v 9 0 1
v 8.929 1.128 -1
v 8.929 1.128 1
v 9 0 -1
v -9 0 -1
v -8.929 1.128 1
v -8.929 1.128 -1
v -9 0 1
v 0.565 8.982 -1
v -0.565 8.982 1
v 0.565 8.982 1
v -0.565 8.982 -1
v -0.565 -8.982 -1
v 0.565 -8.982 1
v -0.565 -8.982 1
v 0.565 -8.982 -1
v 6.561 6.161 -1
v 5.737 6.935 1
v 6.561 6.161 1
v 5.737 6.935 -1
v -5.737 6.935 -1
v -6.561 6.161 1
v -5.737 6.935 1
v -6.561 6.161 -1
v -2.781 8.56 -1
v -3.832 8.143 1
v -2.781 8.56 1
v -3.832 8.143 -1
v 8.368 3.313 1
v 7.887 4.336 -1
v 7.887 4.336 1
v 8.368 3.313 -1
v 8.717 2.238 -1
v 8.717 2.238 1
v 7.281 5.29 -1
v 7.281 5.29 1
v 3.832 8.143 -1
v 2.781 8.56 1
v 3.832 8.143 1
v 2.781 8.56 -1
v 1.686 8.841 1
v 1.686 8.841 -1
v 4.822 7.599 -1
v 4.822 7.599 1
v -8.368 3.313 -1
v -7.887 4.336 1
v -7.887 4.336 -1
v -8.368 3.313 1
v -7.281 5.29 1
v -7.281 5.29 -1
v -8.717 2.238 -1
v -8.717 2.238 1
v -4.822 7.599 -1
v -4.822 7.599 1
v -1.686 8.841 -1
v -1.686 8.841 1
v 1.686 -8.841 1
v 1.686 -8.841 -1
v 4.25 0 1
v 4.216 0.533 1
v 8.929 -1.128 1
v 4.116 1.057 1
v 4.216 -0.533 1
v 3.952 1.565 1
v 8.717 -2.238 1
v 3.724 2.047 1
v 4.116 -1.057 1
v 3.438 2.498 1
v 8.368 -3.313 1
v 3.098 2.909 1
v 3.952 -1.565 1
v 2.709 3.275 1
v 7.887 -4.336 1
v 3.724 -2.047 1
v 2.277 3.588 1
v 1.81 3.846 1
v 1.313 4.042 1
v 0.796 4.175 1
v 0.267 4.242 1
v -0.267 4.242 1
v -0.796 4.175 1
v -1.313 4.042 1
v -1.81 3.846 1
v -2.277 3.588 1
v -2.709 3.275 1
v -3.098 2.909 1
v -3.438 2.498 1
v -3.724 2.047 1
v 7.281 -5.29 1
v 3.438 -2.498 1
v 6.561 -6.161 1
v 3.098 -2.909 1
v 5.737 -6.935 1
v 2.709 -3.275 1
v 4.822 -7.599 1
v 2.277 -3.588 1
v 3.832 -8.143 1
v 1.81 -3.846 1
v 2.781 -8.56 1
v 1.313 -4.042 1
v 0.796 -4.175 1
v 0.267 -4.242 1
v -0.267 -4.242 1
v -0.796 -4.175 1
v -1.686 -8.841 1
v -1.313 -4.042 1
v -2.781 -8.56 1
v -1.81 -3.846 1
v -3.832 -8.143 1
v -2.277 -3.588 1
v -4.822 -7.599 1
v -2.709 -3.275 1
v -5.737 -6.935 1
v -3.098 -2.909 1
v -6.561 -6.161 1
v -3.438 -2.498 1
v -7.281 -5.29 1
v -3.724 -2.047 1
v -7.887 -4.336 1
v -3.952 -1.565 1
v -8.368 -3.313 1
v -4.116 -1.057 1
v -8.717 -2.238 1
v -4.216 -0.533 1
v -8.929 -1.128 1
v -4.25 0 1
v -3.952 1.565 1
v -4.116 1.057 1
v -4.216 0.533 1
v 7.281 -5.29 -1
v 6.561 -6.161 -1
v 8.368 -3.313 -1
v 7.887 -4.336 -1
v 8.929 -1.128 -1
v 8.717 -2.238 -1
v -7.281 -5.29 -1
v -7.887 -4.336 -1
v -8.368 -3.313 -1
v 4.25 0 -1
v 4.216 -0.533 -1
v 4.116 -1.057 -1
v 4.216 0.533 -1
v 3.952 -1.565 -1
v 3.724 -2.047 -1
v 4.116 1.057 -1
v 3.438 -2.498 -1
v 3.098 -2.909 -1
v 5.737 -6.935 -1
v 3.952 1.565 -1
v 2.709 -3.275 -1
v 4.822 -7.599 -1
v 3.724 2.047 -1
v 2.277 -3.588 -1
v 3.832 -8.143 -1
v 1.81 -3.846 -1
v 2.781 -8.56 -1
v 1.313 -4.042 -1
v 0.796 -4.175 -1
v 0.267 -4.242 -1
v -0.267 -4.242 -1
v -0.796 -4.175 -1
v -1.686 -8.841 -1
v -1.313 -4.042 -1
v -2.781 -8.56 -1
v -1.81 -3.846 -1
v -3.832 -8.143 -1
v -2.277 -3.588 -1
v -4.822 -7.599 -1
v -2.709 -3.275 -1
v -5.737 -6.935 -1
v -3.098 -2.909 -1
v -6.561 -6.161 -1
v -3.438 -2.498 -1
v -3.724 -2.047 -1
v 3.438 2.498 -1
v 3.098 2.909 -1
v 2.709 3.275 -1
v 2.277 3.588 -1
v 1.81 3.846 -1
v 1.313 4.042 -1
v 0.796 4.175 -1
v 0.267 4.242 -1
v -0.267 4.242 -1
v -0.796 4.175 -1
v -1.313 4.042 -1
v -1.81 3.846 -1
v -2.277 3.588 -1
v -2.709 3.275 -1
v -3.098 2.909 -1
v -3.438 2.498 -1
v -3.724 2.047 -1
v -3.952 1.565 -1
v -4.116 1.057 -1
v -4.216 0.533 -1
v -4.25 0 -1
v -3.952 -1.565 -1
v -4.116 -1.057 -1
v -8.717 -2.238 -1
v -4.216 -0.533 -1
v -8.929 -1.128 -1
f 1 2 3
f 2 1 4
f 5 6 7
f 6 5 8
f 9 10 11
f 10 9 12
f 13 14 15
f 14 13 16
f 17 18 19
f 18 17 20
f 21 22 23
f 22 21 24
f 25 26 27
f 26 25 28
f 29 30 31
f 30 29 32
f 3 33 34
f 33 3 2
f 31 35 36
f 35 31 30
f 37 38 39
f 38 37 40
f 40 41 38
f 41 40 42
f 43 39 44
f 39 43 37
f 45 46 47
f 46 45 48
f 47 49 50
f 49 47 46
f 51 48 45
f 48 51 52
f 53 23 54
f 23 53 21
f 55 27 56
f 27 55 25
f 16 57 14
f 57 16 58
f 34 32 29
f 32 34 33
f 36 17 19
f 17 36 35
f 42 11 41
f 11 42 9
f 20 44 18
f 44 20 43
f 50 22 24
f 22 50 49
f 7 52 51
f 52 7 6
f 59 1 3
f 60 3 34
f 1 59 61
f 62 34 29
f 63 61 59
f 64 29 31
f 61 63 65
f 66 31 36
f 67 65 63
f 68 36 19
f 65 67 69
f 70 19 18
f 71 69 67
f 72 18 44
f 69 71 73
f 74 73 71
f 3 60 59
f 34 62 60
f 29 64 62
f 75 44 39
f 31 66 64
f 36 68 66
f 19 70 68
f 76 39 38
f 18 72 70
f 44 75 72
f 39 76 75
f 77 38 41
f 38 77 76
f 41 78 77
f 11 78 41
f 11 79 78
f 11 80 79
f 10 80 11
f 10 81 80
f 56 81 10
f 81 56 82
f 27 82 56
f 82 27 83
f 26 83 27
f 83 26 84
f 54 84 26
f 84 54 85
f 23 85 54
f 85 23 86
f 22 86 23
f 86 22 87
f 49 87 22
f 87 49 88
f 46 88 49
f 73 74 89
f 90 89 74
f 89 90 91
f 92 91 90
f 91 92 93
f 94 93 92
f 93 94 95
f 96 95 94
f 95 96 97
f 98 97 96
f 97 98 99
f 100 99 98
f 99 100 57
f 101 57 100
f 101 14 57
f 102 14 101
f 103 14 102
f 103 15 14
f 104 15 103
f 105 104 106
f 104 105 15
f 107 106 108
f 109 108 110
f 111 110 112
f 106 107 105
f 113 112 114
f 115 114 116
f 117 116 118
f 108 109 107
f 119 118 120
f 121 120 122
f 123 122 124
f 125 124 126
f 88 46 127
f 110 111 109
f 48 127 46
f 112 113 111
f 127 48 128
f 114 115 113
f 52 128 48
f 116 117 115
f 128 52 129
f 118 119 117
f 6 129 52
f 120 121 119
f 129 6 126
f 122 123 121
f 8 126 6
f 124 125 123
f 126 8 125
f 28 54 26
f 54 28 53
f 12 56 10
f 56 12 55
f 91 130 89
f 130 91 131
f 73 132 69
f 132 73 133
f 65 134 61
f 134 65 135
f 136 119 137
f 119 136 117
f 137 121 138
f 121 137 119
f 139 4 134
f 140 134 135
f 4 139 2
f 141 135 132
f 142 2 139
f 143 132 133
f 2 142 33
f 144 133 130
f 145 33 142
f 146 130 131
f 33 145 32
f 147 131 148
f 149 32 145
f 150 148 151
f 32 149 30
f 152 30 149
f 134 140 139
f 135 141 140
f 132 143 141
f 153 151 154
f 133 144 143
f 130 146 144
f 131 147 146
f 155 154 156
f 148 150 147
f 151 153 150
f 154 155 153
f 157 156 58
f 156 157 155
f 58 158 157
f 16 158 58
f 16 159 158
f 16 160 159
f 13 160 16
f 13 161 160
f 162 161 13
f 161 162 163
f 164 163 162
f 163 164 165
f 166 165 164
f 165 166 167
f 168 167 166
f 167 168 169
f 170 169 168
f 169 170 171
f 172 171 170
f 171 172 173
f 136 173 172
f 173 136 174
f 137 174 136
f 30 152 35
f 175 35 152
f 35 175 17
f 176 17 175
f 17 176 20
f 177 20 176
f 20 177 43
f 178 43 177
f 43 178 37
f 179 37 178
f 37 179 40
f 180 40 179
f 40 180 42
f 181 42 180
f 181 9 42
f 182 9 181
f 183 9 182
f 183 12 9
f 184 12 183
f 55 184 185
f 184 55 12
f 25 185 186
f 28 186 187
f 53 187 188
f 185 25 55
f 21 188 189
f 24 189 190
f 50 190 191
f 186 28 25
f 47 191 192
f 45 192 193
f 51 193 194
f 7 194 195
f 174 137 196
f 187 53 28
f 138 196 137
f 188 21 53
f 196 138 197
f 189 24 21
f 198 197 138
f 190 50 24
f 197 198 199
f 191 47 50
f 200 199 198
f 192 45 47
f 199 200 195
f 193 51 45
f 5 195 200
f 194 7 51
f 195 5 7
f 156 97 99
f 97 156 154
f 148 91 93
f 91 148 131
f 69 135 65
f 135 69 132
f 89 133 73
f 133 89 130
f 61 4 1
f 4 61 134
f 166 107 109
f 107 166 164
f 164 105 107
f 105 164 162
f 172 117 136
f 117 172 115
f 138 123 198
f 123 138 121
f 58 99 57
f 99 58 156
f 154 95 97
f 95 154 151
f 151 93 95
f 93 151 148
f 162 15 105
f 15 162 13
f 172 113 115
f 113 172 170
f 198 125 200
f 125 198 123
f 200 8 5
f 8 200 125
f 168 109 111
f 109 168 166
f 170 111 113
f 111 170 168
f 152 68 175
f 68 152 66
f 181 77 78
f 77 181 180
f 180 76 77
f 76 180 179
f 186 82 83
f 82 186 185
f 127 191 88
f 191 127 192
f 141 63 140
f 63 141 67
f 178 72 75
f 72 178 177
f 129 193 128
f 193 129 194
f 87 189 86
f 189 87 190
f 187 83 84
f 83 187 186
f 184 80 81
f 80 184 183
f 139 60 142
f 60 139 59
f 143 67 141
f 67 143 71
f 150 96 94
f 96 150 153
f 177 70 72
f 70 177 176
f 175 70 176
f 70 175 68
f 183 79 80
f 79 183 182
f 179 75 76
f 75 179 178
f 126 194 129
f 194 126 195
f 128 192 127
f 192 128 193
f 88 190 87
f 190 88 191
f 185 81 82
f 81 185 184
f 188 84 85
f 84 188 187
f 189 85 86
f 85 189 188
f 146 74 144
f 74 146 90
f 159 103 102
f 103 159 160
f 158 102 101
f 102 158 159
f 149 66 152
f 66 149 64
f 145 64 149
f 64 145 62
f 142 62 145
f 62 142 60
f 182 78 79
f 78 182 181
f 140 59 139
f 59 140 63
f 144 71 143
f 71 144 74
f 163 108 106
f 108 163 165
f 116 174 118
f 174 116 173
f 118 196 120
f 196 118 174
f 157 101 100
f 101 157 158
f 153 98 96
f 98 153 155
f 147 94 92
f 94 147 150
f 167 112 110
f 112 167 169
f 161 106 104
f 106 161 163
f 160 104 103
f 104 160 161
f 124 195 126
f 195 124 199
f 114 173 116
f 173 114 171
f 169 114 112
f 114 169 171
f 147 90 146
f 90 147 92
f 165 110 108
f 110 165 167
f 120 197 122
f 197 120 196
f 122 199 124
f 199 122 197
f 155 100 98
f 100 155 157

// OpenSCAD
$fn = 50;


difference() {
	union() {
		translate(v = [0, 0, -1.0000000000]) {
			cylinder(h = 2, r = 9.0000000000);
		}
	}
	union() {
		translate(v = [0, 0, -100.0000000000]) {
			cylinder(h = 200, r = 4.2500000000);
		}
	}
}
